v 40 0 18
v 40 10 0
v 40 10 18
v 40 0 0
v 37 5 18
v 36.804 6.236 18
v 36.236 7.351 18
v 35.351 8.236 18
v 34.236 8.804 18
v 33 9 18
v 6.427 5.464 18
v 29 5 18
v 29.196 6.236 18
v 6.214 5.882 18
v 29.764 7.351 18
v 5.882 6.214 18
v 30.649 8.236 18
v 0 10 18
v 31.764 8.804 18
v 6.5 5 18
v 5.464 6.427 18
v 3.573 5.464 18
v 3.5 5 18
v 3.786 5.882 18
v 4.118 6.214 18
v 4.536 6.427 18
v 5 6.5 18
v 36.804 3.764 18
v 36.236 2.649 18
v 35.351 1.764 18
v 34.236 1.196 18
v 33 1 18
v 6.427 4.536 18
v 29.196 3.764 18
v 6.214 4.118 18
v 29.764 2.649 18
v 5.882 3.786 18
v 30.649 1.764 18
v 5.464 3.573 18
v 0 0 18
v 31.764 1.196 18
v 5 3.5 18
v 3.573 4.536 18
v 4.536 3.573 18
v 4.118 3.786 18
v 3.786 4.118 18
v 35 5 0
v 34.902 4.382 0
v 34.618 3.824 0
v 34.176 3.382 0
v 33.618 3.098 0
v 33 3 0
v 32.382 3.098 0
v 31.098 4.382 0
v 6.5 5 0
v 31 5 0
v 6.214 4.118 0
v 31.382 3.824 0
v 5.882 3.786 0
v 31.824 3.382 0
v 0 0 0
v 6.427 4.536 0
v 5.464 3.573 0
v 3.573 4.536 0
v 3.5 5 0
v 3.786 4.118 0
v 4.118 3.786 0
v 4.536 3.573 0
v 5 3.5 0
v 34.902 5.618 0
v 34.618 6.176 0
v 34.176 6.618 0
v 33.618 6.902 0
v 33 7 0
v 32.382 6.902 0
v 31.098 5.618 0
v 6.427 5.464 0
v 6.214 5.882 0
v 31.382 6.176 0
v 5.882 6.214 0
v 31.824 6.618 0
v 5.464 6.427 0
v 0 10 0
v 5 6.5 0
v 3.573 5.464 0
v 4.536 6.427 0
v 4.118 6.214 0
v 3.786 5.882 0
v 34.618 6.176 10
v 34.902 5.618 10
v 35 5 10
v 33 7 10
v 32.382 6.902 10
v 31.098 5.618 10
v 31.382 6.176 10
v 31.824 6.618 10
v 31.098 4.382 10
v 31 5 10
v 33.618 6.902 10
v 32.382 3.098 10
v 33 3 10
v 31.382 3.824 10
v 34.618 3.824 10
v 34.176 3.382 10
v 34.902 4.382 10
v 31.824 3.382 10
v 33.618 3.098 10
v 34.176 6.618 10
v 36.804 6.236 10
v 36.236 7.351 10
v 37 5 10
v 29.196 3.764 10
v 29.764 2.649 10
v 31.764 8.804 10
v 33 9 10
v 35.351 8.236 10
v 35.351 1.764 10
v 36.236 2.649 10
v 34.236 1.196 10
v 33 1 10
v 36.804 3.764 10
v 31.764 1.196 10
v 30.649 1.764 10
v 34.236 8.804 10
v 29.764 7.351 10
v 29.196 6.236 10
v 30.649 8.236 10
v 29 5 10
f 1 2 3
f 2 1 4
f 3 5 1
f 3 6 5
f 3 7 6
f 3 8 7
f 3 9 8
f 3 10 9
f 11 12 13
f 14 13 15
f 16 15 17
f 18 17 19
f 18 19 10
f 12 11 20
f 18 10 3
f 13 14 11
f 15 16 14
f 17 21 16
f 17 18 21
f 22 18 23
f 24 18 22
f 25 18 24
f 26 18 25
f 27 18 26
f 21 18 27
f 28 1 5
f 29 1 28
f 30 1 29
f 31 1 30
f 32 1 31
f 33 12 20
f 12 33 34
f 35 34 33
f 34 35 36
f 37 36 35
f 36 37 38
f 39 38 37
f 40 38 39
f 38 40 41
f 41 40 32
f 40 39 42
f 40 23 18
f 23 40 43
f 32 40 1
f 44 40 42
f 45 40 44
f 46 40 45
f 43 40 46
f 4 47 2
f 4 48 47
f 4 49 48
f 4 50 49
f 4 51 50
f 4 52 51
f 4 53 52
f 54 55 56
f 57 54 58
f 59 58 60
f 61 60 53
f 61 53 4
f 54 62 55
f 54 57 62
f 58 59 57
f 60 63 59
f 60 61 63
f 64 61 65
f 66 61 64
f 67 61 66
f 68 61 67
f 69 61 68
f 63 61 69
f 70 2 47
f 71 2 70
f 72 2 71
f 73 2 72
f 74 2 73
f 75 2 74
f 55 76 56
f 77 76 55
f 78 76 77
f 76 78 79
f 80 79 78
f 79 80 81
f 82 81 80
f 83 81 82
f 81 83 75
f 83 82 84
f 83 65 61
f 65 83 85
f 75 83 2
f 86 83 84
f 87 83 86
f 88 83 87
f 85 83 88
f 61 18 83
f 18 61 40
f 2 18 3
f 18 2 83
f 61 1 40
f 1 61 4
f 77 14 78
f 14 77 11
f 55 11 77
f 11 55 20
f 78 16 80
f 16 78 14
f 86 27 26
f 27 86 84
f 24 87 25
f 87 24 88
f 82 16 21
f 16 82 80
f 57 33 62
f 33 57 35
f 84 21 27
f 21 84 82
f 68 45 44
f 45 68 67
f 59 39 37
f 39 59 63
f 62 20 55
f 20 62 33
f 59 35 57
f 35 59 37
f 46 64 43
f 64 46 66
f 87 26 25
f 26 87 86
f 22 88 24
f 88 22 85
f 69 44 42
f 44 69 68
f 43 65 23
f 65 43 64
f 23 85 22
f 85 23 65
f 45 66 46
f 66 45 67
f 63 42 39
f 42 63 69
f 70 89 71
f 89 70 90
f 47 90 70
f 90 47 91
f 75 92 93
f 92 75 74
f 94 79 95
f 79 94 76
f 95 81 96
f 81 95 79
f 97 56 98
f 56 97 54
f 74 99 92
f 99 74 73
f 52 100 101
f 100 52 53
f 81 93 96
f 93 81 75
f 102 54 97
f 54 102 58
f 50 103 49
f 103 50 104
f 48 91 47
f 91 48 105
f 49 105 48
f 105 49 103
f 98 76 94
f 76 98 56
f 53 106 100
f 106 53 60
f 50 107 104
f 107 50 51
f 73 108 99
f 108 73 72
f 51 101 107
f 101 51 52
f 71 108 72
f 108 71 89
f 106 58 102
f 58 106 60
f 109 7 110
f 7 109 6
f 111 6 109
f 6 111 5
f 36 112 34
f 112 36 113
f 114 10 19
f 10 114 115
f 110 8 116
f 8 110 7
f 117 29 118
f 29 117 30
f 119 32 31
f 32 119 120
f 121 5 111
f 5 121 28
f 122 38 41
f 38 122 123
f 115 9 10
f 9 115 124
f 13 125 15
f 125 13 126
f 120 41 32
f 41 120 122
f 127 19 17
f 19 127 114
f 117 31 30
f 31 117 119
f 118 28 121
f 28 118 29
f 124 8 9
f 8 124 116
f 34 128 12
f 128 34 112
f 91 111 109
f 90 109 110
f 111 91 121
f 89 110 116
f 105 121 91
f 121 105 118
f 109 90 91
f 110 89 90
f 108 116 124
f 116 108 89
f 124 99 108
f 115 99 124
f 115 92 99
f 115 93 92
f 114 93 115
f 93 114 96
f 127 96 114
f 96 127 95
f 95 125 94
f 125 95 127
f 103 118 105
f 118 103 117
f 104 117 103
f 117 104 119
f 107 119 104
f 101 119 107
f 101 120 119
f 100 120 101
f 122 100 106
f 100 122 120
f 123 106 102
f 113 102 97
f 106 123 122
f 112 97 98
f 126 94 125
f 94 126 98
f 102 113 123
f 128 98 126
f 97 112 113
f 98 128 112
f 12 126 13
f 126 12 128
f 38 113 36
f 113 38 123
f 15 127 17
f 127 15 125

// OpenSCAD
$fn=20;
module wall_brace() {
  difference() {
    cube([40,10,18]);
    #translate([5,5,0]) cylinder(18,d=3);
    #translate([33,5,0]) cylinder(18,d=4);
    #translate([33,5,10]) cylinder(18,d=8);
  }
}

wall_brace();
